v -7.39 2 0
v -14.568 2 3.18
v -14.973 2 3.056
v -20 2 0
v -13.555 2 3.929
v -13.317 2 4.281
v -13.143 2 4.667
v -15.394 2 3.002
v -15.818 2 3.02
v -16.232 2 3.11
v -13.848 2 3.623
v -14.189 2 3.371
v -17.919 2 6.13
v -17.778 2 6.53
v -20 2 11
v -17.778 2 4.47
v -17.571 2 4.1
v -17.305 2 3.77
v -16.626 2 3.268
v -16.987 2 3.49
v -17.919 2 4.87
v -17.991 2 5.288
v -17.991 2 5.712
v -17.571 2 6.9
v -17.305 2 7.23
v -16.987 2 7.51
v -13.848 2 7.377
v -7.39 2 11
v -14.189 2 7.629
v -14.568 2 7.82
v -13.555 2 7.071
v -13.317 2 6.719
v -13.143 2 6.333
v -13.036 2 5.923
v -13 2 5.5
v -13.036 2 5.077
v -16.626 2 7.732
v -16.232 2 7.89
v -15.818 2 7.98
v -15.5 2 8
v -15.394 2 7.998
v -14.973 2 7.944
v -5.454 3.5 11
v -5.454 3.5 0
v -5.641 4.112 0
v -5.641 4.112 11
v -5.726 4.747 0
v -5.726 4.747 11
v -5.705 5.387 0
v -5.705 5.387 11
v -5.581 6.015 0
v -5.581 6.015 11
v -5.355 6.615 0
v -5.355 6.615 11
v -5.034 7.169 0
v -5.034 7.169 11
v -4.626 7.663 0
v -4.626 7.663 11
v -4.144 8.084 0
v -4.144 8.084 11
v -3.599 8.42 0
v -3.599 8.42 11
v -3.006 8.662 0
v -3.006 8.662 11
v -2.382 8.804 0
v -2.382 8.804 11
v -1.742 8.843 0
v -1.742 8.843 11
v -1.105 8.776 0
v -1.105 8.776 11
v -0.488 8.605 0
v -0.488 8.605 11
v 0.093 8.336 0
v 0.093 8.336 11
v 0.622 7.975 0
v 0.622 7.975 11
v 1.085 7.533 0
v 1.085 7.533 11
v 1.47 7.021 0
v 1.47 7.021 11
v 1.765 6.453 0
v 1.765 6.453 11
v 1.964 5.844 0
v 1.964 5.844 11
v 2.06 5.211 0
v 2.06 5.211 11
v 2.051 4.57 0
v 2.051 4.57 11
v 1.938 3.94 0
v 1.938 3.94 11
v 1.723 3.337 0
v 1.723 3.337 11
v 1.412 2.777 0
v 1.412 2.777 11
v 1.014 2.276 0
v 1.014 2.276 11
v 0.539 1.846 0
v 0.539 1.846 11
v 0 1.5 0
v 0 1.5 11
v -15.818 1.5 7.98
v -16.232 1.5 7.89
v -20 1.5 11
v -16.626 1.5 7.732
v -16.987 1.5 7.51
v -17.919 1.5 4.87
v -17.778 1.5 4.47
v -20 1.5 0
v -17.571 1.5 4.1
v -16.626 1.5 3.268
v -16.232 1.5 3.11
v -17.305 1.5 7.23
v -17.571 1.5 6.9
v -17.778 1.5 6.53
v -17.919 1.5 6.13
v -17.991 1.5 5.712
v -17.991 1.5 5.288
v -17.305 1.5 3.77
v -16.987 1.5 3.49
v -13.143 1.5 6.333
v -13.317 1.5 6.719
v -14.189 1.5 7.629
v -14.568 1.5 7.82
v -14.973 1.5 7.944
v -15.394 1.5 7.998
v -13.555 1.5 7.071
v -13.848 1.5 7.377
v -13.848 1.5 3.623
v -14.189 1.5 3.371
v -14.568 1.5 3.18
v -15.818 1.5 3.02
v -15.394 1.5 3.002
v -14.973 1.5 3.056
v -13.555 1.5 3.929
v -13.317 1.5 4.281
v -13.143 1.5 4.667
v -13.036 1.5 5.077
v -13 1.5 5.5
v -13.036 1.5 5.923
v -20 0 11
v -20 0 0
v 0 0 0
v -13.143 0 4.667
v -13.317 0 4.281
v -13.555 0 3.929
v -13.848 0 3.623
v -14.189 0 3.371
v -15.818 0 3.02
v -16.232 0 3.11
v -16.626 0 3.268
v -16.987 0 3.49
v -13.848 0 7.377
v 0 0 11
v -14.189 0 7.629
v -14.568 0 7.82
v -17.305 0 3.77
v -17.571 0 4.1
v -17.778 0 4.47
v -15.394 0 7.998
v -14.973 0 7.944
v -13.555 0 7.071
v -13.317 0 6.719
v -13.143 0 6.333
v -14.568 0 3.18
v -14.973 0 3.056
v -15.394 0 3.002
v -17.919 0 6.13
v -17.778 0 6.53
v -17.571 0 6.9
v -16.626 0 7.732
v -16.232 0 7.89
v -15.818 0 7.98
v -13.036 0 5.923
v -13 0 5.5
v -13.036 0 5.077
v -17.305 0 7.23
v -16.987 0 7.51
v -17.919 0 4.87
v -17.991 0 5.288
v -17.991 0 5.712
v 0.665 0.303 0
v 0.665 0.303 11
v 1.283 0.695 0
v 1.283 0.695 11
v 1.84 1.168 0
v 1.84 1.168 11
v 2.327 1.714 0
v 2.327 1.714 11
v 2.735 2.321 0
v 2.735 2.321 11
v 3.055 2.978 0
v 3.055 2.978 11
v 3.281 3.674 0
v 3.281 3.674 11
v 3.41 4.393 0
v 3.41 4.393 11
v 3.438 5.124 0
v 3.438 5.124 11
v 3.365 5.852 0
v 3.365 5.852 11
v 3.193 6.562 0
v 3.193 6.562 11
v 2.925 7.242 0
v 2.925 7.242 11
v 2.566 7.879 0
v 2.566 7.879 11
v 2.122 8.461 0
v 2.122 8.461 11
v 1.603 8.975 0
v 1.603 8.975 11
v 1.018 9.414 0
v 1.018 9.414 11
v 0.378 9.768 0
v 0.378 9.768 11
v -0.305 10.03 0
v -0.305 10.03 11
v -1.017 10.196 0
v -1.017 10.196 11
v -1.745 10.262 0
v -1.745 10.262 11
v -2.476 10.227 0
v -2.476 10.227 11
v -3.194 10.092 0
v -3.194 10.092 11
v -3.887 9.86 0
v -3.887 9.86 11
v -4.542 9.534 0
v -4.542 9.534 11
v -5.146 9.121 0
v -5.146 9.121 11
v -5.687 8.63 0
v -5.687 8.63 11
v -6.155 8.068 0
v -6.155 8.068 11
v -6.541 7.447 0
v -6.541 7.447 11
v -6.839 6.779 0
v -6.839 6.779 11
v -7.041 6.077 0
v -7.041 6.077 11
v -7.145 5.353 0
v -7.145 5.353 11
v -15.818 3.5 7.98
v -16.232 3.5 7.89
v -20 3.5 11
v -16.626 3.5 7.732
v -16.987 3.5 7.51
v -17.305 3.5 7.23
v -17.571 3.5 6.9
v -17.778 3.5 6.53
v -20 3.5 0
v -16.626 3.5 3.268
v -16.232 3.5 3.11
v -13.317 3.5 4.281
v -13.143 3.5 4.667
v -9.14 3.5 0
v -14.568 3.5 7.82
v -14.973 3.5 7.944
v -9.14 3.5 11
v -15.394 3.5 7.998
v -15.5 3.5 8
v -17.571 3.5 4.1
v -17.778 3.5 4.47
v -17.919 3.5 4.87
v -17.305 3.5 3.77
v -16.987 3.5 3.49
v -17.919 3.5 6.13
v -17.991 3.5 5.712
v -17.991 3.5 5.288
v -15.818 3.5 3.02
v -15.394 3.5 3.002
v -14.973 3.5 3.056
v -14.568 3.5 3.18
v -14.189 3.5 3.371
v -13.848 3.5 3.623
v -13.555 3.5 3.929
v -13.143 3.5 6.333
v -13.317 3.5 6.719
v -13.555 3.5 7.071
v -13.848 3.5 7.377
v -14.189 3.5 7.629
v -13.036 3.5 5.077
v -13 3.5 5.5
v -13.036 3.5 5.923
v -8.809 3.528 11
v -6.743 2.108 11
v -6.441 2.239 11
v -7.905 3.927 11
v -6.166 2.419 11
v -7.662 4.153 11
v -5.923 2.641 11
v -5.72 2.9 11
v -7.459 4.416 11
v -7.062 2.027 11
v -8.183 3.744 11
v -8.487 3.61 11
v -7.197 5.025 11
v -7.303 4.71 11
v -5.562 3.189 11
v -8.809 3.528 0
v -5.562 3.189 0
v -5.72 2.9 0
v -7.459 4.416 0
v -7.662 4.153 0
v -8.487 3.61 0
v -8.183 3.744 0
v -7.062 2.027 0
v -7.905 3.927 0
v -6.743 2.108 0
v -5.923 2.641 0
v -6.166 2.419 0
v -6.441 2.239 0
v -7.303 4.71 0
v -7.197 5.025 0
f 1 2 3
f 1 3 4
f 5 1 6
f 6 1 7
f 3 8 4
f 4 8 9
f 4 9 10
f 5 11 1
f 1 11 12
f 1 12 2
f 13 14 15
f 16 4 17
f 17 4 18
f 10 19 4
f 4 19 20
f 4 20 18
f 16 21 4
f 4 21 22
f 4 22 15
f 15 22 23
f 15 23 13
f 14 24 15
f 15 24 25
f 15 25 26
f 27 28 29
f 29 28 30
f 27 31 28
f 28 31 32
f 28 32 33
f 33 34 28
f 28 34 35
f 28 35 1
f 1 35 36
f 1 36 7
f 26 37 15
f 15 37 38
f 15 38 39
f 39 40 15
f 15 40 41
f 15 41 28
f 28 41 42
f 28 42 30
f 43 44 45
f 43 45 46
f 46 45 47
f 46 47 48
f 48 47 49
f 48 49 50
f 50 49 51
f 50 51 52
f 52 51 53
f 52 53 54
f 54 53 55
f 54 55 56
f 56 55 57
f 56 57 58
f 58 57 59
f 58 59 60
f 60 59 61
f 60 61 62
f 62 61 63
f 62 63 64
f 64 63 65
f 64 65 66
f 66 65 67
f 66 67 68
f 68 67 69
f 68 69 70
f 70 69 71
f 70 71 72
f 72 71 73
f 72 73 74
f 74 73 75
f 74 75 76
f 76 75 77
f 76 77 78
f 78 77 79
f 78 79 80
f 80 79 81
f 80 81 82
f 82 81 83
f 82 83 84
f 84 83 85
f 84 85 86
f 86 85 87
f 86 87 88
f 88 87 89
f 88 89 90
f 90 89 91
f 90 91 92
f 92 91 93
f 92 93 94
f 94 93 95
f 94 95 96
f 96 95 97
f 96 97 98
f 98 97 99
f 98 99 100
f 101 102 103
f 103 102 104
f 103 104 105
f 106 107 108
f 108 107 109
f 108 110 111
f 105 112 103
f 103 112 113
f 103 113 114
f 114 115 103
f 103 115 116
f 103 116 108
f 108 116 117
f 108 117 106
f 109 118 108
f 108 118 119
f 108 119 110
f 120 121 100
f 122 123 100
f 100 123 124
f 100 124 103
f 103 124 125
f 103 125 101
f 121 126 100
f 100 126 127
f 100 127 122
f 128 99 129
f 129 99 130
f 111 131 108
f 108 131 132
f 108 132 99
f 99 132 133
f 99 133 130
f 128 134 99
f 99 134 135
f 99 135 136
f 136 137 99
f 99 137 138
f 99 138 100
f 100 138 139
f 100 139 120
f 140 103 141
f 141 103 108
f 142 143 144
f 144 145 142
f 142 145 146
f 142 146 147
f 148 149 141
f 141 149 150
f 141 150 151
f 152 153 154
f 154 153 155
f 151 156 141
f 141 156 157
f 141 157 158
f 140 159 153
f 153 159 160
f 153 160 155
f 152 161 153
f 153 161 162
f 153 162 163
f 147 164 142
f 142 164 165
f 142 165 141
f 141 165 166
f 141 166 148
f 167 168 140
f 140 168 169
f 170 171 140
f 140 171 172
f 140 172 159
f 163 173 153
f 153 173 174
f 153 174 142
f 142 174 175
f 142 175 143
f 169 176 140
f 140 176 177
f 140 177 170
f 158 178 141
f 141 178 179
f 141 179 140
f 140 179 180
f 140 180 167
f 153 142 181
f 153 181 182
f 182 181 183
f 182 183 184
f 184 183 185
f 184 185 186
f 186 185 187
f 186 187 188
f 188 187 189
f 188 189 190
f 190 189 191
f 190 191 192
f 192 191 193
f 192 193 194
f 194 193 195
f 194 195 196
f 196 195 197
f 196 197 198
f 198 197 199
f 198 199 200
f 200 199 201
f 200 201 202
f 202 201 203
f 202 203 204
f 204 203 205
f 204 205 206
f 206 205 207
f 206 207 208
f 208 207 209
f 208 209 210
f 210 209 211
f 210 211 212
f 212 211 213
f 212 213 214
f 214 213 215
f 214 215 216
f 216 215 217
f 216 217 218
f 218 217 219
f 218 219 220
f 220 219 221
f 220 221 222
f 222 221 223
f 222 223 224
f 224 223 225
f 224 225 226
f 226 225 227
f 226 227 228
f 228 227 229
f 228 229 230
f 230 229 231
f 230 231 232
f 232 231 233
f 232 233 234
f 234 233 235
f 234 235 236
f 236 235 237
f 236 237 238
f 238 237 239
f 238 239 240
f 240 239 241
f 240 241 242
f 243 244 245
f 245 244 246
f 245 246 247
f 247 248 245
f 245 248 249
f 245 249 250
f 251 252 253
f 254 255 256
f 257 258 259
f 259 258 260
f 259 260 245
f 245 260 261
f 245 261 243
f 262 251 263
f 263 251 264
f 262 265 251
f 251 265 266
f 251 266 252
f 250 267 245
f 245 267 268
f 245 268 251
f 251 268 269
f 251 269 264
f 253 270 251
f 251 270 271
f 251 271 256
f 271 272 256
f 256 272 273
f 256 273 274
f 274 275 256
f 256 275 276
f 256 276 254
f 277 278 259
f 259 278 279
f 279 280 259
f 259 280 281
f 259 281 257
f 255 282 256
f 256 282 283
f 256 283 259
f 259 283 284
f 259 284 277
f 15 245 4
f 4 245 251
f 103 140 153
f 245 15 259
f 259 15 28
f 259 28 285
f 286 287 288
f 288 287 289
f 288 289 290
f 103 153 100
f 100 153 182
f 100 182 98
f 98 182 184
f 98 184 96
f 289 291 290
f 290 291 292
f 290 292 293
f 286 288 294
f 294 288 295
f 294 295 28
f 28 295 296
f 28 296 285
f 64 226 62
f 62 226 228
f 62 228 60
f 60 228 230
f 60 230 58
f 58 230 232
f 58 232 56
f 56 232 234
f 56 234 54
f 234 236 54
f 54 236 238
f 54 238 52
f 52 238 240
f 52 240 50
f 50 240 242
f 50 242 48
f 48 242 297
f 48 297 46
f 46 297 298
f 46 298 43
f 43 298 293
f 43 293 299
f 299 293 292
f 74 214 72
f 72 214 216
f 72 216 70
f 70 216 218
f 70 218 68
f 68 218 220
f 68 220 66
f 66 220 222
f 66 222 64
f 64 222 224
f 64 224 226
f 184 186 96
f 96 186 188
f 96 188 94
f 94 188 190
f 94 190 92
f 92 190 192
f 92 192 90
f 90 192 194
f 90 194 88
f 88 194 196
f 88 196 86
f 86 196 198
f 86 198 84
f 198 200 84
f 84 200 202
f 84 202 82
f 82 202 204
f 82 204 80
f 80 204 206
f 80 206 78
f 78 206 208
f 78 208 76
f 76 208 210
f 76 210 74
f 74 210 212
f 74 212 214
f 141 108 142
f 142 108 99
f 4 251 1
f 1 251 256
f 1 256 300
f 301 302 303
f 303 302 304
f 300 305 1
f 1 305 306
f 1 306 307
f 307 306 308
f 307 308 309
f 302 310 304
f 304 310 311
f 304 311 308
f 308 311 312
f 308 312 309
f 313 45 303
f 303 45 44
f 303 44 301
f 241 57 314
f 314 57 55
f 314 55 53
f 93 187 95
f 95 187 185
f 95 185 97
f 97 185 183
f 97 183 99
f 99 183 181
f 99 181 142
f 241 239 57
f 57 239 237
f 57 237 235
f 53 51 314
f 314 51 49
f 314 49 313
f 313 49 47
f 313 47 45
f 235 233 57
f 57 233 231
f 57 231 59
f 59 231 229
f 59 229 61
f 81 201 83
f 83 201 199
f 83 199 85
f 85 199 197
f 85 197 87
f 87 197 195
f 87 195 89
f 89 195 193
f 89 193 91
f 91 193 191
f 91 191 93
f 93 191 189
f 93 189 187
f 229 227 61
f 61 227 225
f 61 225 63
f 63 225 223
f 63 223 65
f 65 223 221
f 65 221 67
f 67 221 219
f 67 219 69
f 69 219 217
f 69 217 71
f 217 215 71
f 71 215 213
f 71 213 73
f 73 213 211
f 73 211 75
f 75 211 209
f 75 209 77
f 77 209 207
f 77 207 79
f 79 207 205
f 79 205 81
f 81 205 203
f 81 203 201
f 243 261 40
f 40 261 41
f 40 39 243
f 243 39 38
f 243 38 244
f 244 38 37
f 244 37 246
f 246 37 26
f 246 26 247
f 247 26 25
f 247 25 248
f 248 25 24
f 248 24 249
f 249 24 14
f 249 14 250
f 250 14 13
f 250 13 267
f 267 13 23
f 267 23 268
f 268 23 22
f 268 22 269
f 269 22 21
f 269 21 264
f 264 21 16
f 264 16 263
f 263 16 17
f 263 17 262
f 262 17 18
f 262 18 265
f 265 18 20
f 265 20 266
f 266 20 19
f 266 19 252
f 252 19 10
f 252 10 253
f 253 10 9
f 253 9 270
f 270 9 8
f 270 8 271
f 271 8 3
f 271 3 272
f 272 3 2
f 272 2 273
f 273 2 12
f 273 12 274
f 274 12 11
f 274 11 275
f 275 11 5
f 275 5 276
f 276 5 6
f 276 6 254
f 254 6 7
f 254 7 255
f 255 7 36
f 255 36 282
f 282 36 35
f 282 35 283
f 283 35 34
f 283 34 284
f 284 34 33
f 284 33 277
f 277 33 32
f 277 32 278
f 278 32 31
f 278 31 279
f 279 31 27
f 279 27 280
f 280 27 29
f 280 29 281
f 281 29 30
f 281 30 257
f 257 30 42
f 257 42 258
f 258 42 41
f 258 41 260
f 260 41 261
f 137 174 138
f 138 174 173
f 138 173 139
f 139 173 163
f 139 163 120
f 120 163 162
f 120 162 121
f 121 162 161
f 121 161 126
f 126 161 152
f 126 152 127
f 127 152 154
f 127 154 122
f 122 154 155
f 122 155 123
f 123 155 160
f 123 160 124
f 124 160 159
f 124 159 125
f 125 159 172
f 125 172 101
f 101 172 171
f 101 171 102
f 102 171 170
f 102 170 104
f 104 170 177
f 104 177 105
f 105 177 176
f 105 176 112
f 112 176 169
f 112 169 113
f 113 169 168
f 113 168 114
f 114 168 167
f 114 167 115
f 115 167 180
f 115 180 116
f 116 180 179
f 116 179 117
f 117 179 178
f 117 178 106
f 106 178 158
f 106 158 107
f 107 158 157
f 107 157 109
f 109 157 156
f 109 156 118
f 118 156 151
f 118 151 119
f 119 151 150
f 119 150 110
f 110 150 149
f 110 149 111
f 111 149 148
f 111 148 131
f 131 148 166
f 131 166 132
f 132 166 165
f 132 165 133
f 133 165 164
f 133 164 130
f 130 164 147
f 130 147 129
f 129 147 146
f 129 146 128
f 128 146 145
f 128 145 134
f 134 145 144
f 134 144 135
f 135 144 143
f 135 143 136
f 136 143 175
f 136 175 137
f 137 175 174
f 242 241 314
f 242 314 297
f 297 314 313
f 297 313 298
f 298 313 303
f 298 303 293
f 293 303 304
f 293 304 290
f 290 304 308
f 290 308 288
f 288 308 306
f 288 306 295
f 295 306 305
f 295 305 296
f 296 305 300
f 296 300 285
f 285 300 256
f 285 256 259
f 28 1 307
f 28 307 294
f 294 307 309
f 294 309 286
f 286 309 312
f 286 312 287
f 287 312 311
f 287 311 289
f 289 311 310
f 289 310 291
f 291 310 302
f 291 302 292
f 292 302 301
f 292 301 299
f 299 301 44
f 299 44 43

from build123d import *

# Parameters (mm, degrees)
SKETCH1_W           = 14.546192004
SKETCH1_H           = 1.5
SKETCH1_W_2         = 20
BOSS_EXTRUDE1_DEPTH = 11
SKETCH2_R           = 2.5
CUT_EXTRUDE1_DEPTH  = 26.026570584
FILLET1_R           = 2
FILLET2_R           = 2


with BuildPart() as part:
    # Sketch1 → Boss-Extrude1 (new body)
    with BuildSketch(Plane.XY):
        with Locations((-12.726903998, 2.75)):
            Rectangle(SKETCH1_W, SKETCH1_H)
        with BuildLine():
            Line((0, 1.5), (0, 0))
            ThreePointArc((0, 0), (0.523071842, 9.697161138), (-6.953807996, 3.5))
            Line((-6.953807996, 3.5), (-5.453807996, 3.5))
            ThreePointArc((-5.453807996, 3.5), (-0.488055957, 8.605123673), (0, 1.5))
        make_face()
        with Locations((-10, 0.75)):
            Rectangle(SKETCH1_W_2, SKETCH1_H)
    extrude(amount=BOSS_EXTRUDE1_DEPTH)

    # Sketch2 → Cut-Extrude1 (cut, through all)
    with BuildSketch(Plane(origin=(0, 0, 0), x_dir=(-1, 0, 0), z_dir=(0, -1, 0))):
        with Locations(Location((15.5, -5.5, 0), (0, 0, 270))):
            Circle(SKETCH2_R)
    extrude(amount=-CUT_EXTRUDE1_DEPTH, mode=Mode.SUBTRACT)

    # Fillet1
    fillet1_edges = [part.edges().sort_by_distance(p)[0] for p in [
        (-6.953807996, 3.5, 5.5),
    ]]
    fillet(fillet1_edges, radius=FILLET1_R)

    # Fillet2
    # the kernel refuses this fillet: 2 mm, written as the material it takes off along each edge
    with BuildSketch(Plane(origin=(-5.453807996, 2, -4.841229183), x_dir=(-1, 0, 0), z_dir=(0, 0, 1))) as fillet2_piece_1:
        with BuildLine():
            CenterArc((1.936491673, -2), FILLET2_R, 90, 75.522487814)
            Line((0, -1.5), (-0.038729833, -1.49))
            ThreePointArc((-0.038729833, -1.49), (-0.04, -0.75), (-0.04, 0))
            Line((-0.04, 0), (0, 0.04))
            Line((0, 0.04), (1.936491673, 0.04))
            Line((1.936491673, 0.04), (1.936491673, 0))
        make_face()
    extrude(amount=20.682458366, mode=Mode.SUBTRACT)


solid = part.part
